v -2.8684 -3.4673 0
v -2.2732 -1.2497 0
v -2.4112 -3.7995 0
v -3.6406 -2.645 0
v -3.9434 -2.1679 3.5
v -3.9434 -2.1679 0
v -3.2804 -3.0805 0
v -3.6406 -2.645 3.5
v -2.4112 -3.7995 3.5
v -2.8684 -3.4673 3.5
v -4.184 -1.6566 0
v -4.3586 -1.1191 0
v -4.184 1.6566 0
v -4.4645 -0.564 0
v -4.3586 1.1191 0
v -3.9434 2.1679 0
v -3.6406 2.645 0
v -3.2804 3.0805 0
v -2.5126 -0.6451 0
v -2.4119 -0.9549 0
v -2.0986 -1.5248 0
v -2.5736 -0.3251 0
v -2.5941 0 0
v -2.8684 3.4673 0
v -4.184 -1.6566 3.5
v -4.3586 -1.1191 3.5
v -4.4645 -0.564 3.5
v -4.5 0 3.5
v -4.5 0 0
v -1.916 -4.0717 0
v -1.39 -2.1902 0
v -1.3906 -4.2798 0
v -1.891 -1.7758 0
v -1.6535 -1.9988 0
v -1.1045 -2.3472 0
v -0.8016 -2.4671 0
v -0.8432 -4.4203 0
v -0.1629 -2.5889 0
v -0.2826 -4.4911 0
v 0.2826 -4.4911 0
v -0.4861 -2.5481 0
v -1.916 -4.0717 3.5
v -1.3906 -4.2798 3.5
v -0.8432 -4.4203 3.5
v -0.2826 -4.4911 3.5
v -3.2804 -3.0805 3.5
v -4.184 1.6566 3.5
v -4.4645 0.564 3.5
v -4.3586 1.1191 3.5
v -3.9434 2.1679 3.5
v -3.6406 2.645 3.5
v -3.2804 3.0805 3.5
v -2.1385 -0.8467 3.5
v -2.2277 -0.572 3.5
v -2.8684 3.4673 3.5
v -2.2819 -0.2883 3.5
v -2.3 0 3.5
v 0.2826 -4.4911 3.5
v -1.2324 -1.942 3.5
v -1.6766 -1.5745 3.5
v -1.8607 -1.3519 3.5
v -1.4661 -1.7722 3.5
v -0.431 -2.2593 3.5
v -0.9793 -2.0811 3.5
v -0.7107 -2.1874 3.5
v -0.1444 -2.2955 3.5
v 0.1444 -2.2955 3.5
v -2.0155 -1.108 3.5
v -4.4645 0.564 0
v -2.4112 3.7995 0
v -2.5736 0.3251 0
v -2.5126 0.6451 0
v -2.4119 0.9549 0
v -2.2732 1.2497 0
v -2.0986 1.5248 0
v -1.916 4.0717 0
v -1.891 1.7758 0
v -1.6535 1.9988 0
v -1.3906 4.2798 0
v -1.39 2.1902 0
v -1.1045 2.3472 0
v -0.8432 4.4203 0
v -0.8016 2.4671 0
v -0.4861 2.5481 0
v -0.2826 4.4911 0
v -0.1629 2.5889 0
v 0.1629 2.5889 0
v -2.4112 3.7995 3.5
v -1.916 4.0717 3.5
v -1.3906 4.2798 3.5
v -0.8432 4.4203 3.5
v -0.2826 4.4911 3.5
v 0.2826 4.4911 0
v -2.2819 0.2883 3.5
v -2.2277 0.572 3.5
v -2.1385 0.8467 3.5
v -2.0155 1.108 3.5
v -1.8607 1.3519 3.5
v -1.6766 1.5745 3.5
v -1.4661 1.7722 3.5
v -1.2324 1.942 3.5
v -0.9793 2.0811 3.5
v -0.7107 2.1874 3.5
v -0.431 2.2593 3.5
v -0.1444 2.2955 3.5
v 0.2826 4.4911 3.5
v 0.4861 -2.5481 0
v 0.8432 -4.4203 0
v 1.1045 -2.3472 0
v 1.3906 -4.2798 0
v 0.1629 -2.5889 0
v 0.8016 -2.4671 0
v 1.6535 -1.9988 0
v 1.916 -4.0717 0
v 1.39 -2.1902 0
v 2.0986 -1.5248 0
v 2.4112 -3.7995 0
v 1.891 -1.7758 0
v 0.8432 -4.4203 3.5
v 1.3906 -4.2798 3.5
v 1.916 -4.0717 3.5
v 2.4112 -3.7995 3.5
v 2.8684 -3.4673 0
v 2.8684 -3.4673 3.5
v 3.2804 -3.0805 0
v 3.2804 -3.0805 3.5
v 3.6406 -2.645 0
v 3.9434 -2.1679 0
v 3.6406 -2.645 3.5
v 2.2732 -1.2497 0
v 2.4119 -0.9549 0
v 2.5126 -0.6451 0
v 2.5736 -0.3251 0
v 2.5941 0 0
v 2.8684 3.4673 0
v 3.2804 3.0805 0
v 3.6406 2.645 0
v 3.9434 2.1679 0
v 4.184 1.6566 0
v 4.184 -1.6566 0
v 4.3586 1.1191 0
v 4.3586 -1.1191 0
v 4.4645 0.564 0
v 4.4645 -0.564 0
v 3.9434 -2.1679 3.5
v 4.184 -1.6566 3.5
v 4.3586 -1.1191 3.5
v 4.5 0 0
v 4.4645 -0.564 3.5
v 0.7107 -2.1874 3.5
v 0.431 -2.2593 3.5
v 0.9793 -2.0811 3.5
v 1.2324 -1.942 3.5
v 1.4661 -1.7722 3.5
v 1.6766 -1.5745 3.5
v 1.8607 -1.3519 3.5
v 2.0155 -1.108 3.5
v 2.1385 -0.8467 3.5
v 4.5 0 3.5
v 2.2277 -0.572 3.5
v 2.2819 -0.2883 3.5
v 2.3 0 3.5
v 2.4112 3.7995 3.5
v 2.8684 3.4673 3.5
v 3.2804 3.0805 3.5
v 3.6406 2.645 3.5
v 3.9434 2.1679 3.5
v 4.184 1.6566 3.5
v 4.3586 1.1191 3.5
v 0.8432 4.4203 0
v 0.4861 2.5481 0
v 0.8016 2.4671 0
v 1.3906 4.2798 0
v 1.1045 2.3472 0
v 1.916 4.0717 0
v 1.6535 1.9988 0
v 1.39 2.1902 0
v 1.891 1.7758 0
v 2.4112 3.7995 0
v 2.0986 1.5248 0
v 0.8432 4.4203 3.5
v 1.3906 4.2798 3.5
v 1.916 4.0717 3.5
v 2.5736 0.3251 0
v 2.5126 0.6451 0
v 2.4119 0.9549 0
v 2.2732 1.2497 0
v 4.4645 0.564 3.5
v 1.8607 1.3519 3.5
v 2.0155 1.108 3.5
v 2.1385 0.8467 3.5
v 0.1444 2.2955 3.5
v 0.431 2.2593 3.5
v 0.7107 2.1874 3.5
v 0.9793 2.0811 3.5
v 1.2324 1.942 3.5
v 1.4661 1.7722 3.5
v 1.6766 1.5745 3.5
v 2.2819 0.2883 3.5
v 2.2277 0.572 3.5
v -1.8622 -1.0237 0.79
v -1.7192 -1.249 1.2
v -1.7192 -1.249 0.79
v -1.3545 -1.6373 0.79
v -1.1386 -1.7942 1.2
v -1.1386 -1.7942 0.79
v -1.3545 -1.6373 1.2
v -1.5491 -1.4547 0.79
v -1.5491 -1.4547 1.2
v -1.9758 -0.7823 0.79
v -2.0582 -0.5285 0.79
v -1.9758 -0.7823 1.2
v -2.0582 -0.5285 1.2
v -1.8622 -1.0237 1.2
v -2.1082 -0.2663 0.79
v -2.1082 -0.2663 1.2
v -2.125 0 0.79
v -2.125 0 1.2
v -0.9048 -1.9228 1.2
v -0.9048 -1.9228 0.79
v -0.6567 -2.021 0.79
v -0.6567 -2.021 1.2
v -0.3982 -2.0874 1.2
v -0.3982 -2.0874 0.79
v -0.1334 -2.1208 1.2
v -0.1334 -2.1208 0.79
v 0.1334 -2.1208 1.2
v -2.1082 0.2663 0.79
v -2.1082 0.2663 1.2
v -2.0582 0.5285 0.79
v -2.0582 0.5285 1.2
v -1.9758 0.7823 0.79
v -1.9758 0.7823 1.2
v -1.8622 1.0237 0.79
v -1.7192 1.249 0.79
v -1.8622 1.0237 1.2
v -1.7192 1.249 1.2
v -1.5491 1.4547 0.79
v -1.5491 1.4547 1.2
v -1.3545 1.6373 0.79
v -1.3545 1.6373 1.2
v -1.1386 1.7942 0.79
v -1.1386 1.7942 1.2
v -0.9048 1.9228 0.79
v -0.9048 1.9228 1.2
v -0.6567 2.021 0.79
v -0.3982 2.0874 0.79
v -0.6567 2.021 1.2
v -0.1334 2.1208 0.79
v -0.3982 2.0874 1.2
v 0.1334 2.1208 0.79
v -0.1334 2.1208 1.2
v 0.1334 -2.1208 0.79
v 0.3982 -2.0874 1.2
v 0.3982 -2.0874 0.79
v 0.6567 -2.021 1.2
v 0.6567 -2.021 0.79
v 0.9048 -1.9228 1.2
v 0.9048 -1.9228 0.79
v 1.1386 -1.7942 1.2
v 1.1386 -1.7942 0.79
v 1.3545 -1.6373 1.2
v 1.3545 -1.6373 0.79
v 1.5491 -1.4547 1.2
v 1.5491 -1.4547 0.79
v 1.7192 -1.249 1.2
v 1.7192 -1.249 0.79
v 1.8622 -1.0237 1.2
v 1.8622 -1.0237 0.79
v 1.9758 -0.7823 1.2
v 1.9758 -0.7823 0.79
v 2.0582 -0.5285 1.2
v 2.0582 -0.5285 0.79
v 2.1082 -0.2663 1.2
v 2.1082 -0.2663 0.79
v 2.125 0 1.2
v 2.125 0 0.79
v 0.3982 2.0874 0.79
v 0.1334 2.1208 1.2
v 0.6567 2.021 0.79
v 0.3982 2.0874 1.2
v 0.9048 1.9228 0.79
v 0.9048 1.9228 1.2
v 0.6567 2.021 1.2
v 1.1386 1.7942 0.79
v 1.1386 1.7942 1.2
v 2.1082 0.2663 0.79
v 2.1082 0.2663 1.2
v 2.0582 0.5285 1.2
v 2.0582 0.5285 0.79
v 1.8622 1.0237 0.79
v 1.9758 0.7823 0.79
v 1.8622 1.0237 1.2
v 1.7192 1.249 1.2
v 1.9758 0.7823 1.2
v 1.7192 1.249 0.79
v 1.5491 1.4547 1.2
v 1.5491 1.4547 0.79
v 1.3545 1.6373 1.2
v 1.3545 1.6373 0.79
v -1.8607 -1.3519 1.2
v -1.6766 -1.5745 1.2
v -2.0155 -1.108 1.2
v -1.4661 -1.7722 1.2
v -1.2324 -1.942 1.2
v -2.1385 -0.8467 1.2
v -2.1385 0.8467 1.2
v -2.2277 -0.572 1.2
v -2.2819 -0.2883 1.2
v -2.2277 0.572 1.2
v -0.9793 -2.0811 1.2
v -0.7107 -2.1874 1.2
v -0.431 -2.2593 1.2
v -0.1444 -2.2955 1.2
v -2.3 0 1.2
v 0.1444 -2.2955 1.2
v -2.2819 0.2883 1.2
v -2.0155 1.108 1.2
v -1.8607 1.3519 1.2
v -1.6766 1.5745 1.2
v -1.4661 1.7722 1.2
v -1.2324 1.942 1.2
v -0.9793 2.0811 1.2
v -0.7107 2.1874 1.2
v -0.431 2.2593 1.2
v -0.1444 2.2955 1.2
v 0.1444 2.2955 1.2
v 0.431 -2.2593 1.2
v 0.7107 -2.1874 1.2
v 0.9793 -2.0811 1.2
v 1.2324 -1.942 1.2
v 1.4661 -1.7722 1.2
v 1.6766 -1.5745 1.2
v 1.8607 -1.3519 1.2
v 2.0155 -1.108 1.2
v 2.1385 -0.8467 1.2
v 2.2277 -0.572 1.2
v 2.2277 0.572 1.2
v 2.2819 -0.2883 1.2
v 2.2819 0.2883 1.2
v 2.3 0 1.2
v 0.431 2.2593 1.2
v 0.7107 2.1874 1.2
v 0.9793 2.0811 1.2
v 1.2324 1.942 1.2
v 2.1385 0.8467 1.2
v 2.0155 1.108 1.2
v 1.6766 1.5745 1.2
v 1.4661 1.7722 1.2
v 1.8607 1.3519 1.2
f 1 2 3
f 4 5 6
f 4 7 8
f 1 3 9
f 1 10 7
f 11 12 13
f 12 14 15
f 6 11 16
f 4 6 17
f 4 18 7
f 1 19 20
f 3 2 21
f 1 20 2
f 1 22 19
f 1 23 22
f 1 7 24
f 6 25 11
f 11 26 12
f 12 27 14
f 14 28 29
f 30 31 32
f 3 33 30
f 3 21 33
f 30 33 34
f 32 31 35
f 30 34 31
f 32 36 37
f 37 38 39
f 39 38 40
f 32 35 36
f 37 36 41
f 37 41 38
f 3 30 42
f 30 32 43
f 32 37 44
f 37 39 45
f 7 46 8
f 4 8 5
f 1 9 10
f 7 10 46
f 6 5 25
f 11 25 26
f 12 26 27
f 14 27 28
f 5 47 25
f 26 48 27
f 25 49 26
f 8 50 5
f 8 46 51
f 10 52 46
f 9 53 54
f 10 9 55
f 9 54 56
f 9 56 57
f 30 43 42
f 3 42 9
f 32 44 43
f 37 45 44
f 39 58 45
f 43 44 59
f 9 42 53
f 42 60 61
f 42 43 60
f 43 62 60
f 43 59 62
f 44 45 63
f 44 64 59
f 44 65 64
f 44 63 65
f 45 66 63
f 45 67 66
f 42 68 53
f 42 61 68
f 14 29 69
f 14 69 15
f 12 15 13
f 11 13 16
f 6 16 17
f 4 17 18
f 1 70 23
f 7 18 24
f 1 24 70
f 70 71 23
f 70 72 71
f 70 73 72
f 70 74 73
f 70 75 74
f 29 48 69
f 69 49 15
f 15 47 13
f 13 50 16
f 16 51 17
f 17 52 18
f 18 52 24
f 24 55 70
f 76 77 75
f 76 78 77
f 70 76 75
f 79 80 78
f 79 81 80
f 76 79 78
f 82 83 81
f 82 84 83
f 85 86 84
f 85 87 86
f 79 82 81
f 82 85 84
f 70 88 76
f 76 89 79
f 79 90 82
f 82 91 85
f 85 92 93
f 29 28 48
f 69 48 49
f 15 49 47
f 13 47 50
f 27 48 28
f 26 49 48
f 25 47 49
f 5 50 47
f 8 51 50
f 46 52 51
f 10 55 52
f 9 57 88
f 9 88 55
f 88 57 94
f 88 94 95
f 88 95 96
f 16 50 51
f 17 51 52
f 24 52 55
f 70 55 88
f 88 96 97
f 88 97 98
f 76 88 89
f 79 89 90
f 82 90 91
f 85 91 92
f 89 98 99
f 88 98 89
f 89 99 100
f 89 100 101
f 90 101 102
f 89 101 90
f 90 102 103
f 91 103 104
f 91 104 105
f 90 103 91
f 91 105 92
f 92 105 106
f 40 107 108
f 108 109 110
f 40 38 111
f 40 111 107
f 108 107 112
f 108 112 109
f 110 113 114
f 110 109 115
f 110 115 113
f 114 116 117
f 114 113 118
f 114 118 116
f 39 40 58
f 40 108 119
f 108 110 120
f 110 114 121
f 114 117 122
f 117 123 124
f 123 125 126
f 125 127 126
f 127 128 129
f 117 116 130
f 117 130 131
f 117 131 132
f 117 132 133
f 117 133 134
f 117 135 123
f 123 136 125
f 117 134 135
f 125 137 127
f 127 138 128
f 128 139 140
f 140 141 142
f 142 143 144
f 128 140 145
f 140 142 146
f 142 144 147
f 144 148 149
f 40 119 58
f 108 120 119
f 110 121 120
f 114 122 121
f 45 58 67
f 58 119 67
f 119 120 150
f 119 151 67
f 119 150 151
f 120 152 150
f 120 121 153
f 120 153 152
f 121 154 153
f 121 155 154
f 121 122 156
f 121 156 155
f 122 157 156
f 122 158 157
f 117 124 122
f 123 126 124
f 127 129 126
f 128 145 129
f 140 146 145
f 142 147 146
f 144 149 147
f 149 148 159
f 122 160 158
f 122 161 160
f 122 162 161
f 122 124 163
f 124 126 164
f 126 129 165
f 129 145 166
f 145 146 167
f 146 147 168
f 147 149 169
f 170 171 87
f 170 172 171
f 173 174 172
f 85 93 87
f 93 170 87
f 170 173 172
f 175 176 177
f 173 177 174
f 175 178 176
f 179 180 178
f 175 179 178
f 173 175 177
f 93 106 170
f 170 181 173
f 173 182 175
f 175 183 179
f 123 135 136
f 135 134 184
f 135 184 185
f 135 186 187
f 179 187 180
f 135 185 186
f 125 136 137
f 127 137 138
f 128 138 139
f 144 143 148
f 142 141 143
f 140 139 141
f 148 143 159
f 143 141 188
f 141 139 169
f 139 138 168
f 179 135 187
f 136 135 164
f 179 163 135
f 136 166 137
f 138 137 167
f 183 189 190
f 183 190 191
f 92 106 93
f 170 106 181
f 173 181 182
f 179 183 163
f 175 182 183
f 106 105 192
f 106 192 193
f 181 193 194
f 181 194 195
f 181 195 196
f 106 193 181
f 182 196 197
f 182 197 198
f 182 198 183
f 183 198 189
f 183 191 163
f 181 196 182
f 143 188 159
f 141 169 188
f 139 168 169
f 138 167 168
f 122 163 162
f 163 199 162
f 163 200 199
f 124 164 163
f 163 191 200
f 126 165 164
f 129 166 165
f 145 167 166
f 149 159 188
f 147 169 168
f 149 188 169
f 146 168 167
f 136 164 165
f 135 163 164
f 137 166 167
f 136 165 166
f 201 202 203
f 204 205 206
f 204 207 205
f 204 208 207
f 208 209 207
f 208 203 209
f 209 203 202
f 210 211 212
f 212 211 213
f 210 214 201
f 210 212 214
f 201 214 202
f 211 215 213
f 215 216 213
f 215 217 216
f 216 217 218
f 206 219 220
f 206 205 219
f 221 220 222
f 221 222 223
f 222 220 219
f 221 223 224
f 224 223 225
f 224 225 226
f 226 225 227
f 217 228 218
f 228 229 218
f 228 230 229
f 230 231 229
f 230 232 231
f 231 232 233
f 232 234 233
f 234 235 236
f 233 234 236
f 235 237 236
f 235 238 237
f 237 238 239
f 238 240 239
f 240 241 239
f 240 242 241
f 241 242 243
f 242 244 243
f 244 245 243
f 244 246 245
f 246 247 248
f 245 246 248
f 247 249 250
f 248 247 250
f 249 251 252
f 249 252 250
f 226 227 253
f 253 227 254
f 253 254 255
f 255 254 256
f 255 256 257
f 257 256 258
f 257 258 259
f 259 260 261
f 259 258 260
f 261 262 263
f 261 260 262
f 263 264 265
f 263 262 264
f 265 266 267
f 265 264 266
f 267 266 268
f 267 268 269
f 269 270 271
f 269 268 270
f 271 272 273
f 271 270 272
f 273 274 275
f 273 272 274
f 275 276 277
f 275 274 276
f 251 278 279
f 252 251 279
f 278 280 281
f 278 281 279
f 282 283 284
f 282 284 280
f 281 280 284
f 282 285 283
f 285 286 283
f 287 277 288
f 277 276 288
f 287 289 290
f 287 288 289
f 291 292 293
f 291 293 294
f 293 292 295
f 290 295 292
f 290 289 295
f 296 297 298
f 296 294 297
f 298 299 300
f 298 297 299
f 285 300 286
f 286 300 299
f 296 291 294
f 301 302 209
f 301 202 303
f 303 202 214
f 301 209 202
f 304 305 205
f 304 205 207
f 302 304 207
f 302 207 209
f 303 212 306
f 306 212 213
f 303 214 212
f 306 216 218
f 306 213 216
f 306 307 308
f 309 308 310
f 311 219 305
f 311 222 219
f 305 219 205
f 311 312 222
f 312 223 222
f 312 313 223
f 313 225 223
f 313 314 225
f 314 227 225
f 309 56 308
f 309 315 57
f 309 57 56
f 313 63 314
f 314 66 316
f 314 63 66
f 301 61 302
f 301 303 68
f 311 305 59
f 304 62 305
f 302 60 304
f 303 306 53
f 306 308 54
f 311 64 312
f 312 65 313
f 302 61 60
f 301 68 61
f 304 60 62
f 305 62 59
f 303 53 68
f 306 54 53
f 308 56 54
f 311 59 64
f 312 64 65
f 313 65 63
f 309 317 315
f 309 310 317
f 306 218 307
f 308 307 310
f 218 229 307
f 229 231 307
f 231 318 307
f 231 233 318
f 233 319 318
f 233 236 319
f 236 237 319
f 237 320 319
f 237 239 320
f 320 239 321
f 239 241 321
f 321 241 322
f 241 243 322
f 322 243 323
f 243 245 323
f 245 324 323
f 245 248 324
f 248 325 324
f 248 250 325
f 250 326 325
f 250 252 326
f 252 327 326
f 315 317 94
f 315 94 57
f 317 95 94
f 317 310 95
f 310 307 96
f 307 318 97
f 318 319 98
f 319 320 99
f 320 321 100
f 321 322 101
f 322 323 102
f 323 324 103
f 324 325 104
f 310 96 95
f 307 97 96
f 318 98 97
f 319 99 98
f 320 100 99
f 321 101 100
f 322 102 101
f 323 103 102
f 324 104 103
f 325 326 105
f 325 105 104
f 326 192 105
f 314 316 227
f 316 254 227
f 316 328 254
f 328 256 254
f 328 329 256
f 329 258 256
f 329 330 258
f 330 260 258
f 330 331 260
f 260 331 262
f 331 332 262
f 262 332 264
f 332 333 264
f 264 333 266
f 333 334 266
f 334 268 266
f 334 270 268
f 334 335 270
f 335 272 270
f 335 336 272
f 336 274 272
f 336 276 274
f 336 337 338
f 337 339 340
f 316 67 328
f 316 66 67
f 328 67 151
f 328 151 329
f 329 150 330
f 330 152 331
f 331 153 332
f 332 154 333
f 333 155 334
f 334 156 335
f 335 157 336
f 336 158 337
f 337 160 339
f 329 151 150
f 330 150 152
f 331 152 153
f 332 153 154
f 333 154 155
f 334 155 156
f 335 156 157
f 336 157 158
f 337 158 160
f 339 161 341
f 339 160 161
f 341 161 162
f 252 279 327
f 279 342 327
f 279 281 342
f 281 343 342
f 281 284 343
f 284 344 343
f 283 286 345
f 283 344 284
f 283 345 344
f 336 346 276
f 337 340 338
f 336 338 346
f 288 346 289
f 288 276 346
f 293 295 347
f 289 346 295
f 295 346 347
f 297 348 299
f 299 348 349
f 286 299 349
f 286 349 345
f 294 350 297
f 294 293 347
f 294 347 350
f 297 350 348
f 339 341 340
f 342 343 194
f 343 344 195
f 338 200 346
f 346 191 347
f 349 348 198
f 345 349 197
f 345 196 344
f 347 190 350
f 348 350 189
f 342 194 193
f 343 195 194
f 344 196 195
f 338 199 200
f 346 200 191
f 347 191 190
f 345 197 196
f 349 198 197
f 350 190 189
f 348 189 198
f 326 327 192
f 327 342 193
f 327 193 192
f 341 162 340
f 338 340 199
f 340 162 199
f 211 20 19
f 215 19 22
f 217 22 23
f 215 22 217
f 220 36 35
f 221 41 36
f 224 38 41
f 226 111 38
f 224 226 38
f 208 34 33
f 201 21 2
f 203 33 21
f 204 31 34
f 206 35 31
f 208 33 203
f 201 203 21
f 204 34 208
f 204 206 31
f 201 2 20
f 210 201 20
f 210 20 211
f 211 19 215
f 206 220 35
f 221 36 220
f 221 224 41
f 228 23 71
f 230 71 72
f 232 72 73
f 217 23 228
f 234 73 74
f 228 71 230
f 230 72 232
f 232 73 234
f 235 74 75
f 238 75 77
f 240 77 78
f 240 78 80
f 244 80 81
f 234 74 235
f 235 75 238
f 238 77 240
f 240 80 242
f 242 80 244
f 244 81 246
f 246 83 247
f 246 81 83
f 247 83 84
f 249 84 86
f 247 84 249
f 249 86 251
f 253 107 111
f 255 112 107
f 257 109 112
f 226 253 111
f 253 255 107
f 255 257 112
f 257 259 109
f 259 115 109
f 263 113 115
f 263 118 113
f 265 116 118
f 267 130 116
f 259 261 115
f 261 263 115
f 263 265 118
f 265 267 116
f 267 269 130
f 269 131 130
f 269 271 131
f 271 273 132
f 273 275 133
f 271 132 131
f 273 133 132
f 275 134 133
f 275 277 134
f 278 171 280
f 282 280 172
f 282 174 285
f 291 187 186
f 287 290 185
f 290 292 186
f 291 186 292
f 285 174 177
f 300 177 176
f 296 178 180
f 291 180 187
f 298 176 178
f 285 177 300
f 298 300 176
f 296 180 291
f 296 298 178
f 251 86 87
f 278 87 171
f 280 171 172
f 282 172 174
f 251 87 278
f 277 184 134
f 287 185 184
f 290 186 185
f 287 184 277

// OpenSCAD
// ====================================================================
// [PRINT 08-D] Standalone Snap-Fit Retaining End Cap (Matched to 4.0mm Rod)
//
// Features:
// - Matched to 4.0mm reduced rod diameter (4.25mm inner socket).
// - Internal snap shoulder (4.6mm) catches 4.4mm barb tip securely.
// - 100% Support-Free: Rests flat on build plate at Z = 0.
// ====================================================================

$fn = 50;

pin_shaft_d  = 4.0; // Reduced rod diameter
head_d       = 9.0; // Flat cap head diameter

module retaining_end_cap() {
    difference() {
        union() {
            // Flat outer cap disk resting flat at Z = 0
            cylinder(d = head_d, h = 3.5);
        }

        // Inner receiving socket for 4.0mm shaft (4.25mm diameter)
        translate([0, 0, -1])
            cylinder(d = pin_shaft_d + 0.25, h = 5.0);

        // Internal snap-shoulder recess (4.6mm diameter accepts 4.4mm barb tip)
        translate([0, 0, 1.2])
            cylinder(d = 4.6, h = 3.0);

        // Chamfer mouth lead-in
        translate([0, 0, -0.01])
            cylinder(d1 = pin_shaft_d + 1.2, d2 = pin_shaft_d + 0.25, h = 0.8);
    }
}

retaining_end_cap();
